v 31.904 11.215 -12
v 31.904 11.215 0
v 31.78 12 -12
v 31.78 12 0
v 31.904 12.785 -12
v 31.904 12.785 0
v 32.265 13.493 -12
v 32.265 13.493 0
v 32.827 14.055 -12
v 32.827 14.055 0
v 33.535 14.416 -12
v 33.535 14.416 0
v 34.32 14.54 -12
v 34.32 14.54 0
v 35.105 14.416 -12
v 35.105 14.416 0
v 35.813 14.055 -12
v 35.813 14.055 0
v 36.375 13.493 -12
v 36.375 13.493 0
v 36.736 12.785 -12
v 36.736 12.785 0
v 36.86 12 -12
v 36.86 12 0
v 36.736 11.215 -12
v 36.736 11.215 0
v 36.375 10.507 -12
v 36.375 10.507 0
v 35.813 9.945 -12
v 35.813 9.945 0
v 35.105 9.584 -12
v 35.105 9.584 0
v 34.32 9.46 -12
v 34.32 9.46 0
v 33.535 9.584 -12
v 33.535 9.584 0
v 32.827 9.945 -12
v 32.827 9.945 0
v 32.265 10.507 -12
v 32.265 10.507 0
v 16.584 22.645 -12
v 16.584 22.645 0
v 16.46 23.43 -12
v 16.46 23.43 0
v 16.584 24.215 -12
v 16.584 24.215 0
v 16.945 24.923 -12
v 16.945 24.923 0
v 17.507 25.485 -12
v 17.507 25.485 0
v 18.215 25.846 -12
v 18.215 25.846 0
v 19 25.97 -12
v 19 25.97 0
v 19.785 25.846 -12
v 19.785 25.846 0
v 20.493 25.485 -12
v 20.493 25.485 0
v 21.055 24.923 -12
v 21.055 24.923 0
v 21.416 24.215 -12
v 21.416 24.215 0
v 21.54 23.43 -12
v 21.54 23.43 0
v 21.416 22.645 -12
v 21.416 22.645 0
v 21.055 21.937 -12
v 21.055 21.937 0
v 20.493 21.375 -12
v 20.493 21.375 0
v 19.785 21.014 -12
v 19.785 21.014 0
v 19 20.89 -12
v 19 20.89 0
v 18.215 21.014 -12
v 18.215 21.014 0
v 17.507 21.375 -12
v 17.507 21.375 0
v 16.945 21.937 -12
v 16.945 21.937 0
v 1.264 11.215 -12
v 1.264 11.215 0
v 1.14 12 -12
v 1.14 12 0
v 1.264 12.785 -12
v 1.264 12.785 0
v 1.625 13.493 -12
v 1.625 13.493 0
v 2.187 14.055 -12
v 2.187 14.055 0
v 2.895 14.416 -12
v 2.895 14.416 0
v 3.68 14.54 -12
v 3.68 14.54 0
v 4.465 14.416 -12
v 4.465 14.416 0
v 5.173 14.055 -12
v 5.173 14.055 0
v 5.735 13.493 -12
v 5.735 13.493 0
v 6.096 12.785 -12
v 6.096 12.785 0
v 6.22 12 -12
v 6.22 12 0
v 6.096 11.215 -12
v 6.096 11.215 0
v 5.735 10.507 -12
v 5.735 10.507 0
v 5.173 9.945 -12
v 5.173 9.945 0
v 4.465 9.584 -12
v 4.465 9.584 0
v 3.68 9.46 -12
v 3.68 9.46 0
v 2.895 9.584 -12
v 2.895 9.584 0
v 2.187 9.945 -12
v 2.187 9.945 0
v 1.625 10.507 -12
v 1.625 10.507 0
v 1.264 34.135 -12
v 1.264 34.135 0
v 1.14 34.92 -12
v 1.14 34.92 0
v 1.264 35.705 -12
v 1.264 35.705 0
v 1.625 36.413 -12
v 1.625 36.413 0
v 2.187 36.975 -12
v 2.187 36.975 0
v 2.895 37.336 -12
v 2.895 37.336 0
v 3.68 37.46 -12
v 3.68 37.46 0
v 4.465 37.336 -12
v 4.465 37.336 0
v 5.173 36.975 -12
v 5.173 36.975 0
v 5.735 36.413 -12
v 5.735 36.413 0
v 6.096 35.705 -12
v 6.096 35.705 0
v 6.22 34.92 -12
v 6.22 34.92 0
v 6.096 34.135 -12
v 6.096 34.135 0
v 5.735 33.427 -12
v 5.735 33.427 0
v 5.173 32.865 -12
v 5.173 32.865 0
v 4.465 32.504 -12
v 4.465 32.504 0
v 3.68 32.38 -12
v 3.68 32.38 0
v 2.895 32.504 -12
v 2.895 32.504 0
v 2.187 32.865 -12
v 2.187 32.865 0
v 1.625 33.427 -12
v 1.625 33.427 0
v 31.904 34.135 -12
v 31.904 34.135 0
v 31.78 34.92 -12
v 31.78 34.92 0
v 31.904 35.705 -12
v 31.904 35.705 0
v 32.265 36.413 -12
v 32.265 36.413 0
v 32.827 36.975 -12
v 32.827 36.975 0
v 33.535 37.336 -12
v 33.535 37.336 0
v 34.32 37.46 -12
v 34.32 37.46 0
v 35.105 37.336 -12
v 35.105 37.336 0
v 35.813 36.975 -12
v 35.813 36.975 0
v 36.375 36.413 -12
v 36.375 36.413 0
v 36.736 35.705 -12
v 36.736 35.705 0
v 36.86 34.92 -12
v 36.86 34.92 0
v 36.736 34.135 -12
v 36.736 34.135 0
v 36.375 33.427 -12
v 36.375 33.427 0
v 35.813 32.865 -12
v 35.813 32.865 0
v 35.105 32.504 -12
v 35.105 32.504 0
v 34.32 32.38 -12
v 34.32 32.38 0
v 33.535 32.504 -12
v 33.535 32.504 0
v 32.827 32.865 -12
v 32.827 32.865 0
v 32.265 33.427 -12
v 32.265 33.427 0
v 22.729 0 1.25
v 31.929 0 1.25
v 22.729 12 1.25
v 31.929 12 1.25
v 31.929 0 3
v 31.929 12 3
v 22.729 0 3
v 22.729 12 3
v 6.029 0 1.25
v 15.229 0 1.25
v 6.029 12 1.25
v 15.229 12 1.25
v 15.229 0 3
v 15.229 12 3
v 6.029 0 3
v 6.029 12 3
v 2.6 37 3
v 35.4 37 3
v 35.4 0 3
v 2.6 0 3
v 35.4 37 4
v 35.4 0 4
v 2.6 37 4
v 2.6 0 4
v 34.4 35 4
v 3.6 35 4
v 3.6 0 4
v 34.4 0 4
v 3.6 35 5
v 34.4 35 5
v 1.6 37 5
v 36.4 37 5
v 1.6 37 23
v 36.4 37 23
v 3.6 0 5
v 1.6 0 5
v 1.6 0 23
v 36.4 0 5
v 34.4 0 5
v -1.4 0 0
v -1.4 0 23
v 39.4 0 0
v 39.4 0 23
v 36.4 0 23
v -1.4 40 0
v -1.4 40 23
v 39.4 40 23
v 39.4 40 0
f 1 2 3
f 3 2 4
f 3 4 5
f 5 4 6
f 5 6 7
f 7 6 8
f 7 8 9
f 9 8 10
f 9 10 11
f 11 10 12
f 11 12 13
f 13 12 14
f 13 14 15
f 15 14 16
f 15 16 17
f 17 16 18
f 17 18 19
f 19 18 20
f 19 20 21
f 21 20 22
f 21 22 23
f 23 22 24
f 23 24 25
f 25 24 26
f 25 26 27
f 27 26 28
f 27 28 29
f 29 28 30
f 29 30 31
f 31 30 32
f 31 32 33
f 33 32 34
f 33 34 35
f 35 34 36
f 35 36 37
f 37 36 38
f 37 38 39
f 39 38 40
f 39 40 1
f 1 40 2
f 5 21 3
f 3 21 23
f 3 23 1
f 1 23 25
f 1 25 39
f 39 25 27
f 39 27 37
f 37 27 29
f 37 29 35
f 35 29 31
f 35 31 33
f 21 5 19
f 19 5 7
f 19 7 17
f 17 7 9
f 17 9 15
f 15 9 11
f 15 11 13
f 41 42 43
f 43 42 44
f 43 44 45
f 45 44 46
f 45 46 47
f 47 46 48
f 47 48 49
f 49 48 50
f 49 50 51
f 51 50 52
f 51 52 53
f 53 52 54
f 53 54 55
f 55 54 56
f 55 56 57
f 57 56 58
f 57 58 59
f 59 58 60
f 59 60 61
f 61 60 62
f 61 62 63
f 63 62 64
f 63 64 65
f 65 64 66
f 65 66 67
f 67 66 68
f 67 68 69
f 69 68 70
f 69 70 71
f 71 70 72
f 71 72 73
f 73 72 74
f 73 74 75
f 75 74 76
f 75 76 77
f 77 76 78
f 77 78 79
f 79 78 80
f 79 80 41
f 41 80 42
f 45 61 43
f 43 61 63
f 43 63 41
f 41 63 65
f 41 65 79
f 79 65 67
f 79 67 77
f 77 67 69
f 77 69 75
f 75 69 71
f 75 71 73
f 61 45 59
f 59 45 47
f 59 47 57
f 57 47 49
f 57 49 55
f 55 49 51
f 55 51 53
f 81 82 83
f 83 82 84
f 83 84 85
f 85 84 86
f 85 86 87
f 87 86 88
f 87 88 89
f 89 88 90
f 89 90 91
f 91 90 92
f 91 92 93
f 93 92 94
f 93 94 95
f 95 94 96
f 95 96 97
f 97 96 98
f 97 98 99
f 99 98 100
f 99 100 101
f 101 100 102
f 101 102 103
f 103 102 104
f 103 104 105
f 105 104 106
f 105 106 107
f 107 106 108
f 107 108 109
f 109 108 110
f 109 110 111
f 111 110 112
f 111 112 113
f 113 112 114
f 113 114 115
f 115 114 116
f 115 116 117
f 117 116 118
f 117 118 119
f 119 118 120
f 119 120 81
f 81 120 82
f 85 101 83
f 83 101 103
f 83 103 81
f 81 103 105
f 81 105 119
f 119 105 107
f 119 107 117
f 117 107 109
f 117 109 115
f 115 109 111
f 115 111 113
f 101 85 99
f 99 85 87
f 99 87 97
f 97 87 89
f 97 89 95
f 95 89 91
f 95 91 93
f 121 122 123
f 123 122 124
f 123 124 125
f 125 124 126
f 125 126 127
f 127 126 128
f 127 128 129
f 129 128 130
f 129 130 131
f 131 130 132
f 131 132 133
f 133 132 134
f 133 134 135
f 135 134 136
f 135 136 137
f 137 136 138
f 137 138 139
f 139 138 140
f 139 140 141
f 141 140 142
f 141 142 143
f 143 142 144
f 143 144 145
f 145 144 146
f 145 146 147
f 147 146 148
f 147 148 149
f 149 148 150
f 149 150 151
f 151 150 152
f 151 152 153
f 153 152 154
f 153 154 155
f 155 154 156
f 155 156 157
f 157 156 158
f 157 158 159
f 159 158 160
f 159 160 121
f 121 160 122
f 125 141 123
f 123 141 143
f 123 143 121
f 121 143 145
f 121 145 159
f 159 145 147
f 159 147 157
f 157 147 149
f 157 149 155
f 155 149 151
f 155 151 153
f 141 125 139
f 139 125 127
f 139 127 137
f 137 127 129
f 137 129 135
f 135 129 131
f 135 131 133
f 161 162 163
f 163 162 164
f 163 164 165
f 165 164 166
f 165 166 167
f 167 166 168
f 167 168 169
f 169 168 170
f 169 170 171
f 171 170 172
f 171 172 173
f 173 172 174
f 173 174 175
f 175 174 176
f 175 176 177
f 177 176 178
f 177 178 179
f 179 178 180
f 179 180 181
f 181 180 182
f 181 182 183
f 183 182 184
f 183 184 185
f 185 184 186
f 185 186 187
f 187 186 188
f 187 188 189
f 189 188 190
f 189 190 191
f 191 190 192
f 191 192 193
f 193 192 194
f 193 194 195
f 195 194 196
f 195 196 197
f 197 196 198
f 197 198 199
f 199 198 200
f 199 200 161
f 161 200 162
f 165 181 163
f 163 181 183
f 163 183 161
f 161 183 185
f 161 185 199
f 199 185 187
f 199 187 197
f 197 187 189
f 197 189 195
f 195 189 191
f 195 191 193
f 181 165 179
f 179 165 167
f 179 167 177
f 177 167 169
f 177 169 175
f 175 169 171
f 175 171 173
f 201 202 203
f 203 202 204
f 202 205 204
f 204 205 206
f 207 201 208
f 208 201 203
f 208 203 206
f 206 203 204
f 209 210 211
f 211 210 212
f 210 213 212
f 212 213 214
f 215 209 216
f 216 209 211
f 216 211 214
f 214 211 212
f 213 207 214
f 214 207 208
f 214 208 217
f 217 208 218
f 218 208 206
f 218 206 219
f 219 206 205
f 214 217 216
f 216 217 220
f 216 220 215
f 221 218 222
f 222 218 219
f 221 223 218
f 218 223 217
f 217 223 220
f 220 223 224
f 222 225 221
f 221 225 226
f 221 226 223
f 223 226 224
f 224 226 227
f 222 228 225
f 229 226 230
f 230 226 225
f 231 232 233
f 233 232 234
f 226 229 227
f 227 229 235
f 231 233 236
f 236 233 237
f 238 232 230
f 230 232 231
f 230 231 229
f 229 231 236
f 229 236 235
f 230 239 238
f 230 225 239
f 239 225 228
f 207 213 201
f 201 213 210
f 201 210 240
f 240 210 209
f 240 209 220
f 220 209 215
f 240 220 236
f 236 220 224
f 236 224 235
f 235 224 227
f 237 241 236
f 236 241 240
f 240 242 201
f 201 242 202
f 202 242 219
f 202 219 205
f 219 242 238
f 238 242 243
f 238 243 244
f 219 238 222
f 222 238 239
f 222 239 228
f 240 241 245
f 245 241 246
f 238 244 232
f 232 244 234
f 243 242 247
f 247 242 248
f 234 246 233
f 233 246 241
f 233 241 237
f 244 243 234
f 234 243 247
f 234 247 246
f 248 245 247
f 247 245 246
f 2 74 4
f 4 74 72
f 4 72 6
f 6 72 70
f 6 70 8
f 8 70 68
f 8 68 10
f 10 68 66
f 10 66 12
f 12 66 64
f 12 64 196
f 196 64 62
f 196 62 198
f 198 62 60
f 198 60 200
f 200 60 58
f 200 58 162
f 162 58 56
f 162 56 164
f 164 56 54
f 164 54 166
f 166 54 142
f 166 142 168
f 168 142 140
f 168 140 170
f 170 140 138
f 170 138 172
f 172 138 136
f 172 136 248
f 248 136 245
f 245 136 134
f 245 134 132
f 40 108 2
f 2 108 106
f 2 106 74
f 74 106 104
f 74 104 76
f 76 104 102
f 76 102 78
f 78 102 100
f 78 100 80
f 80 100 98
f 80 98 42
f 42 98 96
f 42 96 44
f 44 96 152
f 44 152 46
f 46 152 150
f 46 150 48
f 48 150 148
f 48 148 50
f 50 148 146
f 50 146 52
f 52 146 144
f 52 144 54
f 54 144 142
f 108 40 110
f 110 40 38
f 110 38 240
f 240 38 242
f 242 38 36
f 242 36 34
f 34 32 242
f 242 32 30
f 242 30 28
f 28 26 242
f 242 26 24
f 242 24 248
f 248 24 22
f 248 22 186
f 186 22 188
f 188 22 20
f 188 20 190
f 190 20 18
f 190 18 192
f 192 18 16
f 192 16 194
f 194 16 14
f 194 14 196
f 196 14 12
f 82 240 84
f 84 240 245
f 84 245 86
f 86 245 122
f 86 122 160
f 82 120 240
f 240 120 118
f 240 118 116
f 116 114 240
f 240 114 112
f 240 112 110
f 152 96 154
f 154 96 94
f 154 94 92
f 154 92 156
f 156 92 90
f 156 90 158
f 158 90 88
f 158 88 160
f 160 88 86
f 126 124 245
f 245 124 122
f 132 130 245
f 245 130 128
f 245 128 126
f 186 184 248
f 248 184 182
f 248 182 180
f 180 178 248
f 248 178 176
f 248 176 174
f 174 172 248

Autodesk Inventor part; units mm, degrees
ref_plane "YZ Plane" through (0, 0, 0) normal (1, 0, 0) x (0, 1, 0)
ref_plane "XZ Plane" through (0, 0, 0) normal (0, 1, 0) x (-1, 0, 0)
ref_plane "XY Plane" through (0, 0, 0) normal (0, 0, 1) x (1, 0, 0)
sketch "Sketch1" plane through (0, 0, 0) normal (0, 0, 1) x (1, 0, 0)
  line L0 (0, 0) -> (38, 0)
  line L1 (38, 0) -> (38, 40)
  line L2 (38, 40) -> (0, 40)
  line L3 (0, 40) -> (0, 0)
  dimension "d0" = 38
  dimension "d1" = 40
extrude "Extrusion1" add sketch "Sketch1" along normal blind 3
sketch "Sketch2" plane through (0, 0, 3) normal (0, 0, 1) x (1, 0, 0)
  line L0 (38, 0) -> (38, 40) projected
  line L1 (38, 40) -> (38, 0)
  line L2 (38, 0) -> (34.9318, 0)
  line L3 (35, 37) -> (3, 37)
  line L4 (3, 37) -> (3, 0)
  line L5 (0, 40) -> (0, 0) projected
  line L6 (0, 0) -> (0, 40)
  line L7 (38, 40) -> (0, 40) projected
  line L8 (0, 40) -> (38, 40)
  line L9 (35, 37) -> (35, 0)
  line L10 (3, 0) -> (0, 0)
  dimension "d4" = 3
  dimension "d5" = 3
  dimension "d6" = 3
extrude "Extrusion2" add sketch "Sketch2" along normal blind 20
sketch "Sketch3" plane through (38, 0, 0) normal (1, 0, 0) x (0, 0, -1)
  line L0 (-23, 0) -> (-23, 40) projected
  line L1 (0, 0) -> (-23, 0)
  line L2 (-23, 0) -> (-23, 40)
  line L3 (-23, 40) -> (0, 40)
  line L4 (0, 40) -> (0, 0)
extrude "Extrusion3" add sketch "Sketch3" along normal blind 1.4
sketch "Sketch4" plane through (35, 0, 3) normal (-1, 0, 0) x (0, 0, 1)
  line L0 (0, 37) -> (20, 37) projected
  line L1 (0, 0) -> (20, 0) projected
  line L2 (20, 37) -> (0, 37)
  line L3 (0, 37) -> (0, 0)
  line L4 (0, 0) -> (20, 0)
  line L5 (20, 0) -> (20, 37)
  point P0 (-3, 0)
extrude "Extrusion4" cut sketch "Sketch4" against normal blind 1.4
sketch "Sketch5" plane through (0, 0, 0) normal (-1, 0, 0) x (0, 0, 1)
  line L0 (0, 40) -> (23, 40) projected
  line L1 (23, 40) -> (0, 40)
  line L2 (0, 40) -> (0, 0)
  line L3 (0, 0) -> (23, 0)
  line L4 (23, 0) -> (23, 40)
extrude "Extrusion5" add sketch "Sketch5" along normal blind 1.4
sketch "Sketch6" plane through (3, 0, 3) normal (1, 0, 0) x (0, 0, -1)
  line L0 (0, 37) -> (0, 0) projected
  line L1 (-20, 0) -> (-20, 37) projected
  line L2 (0, 37) -> (-20, 37)
  line L3 (-20, 37) -> (-20, 0)
  line L4 (-20, 0) -> (0, 0)
  line L5 (0, 0) -> (0, 37)
  point P0 (3, 0)
extrude "Extrusion6" cut sketch "Sketch6" against normal blind 1.4
sketch "Sketch7" plane through (39.4, 0, 0) normal (0, -1, 0) x (1, 0, 0)
  line L0 (-3, 3) -> (-3, 23) projected
  line L1 (-3, 4) -> (-5, 4)
  line L2 (-5, 4) -> (-5, 5)
  line L3 (-5, 5) -> (-3, 5)
  line L4 (-3, 5) -> (-3, 4)
  line L5 (-37.8, 3) -> (-3, 3) projected
  point P0 (-39.4, 0)
  dimension "d17" = 2
  dimension "d18" = 1
  dimension "d19" = 1
extrude "Extrusion7" add sketch "Sketch7" against normal blind 37.0078
sketch "Sketch9" plane through (39.4, 0, 0) normal (0, -1, 0) x (1, 0, 0)
  line L0 (-37.8, 3) -> (-37.8, 23) projected
  line L1 (-37.8, 4) -> (-35.8, 4)
  line L2 (-35.8, 4) -> (-35.8, 5)
  line L3 (-35.8, 5) -> (-37.8, 5)
  line L4 (-37.8, 5) -> (-37.8, 4)
  line L5 (-37.8, 3) -> (-3, 3) projected
  point P0 (-39.4, 0)
  dimension "d22" = 2
  dimension "d23" = 1
  dimension "d24" = 1
extrude "Extrusion8" add sketch "Sketch9" against normal blind 37.0078
sketch "Sketch10" plane through (1.6, 37, 3) normal (0, -1, 0) x (1, 0, 0)
  line L0 (0, 2) -> (2, 2) projected
  line L1 (32.8, 1) -> (32.8, 2) projected
  line L2 (2, 2) -> (32.8, 2)
  line L3 (32.8, 2) -> (32.8, 1)
  line L4 (32.8, 1) -> (2, 1)
  line L5 (2, 1) -> (2, 2)
  point P0 (-1.6, -3)
extrude "Extrusion9" add sketch "Sketch10" along normal blind 2
sketch "Sketch11" plane through (1.6, 0, 3) normal (1, 0, 0) x (0, 0, -1)
  line L0 (-1, 37) -> (0, 37) projected
  line L1 (0, 0) -> (-1, 0) projected
  line L2 (0, 37) -> (-1, 37)
  line L3 (-1, 37) -> (-1, 0)
  line L4 (-1, 0) -> (0, 0)
  line L5 (0, 0) -> (0, 37)
  point P0 (3, 0)
extrude "Extrusion10" add sketch "Sketch11" along normal blind 1
sketch "Sketch12" plane through (36.4, 0, 3) normal (-1, 0, 0) x (0, 0, 1)
  line L0 (0, 0) -> (0, 37) projected
  line L1 (1, 0) -> (0, 0) projected
  line L2 (0, 37) -> (1, 37)
  line L3 (1, 37) -> (1, 0)
  line L4 (1, 0) -> (0, 0)
  line L5 (0, 0) -> (0, 37)
  point P0 (-3, 0)
extrude "Extrusion11" add sketch "Sketch12" along normal blind 1
sketch "Sketch13" plane through (39.4, 0, 0) normal (0, -1, 0) x (1, 0, 0)
  line L0 (-4, 3) -> (-36.8, 3) projected
  line L1 (-33.371, 3) -> (-24.171, 3)
  line L2 (-24.171, 3) -> (-24.171, 1.25)
  line L3 (-24.171, 1.25) -> (-33.371, 1.25)
  line L4 (-33.371, 1.25) -> (-33.371, 3)
  line L5 (-16.671, 3) -> (-7.471, 3)
  line L6 (-7.471, 3) -> (-7.471, 1.25)
  line L7 (-7.471, 1.25) -> (-16.671, 1.25)
  line L8 (-16.671, 1.25) -> (-16.671, 3)
  point P0 (-39.4, 0)
  dimension "d33" = 9.2
  dimension "d34" = 9.2
  dimension "d35" = 7.5
  dimension "d36" = 3.429
  dimension "d37" = 1.75
extrude "Extrusion12" cut sketch "Sketch13" against normal blind 12
sketch "Sketch14" plane through (0, 0, 0) normal (0, 0, -1) x (-1, 0, 0)
  circle A0 centre (-3.68, 12) radius 2.54
  circle A1 centre (-19, 23.43) radius 2.54
  circle A2 centre (-3.68, 34.92) radius 2.54
  circle A3 centre (-34.32, 12) radius 2.54
  circle A4 centre (-34.32, 34.92) radius 2.54
  line L0 (1.4, 0) -> (-39.4, 0) projected
  line L1 (1.4, 40) -> (1.4, 0) projected
  line L2 (-39.4, 0) -> (-39.4, 40) projected
  line L3 (1.4, 40) -> (-39.4, 40) projected
  point P0 (0, 0)
  dimension "d40" = 5.08
  dimension "d41" = 5.08
  dimension "d42" = 5.08
  dimension "d43" = 5.08
  dimension "d44" = 5.08
  dimension "d45" = 12
  dimension "d46" = 12
  dimension "d47" = 5.08
  dimension "d48" = 5.08
  dimension "d49" = 5.08
  dimension "d50" = 5.08
  dimension "d51" = 5.08
  dimension "d52" = 5.08
  dimension "d53" = 11.43
extrude "Extrusion13" add sketch "Sketch14" along normal blind 12 contours A0 | A1 | A2 | A3 | A4
thread "Thread1" size "12-24 UNC" class "2A" standard "ANSI Unified Screw Threads" full length
thread "Thread2" size "12-24 UNC" class "2A" standard "ANSI Unified Screw Threads" full length
thread "Thread3" size "12-24 UNC" class "2A" standard "ANSI Unified Screw Threads" full length
thread "Thread4" size "12-24 UNC" class "2A" standard "ANSI Unified Screw Threads" full length
thread "Thread5" size "12-24 UNC" class "2A" standard "ANSI Unified Screw Threads" full length
properties part number "ecog_casing_1"
